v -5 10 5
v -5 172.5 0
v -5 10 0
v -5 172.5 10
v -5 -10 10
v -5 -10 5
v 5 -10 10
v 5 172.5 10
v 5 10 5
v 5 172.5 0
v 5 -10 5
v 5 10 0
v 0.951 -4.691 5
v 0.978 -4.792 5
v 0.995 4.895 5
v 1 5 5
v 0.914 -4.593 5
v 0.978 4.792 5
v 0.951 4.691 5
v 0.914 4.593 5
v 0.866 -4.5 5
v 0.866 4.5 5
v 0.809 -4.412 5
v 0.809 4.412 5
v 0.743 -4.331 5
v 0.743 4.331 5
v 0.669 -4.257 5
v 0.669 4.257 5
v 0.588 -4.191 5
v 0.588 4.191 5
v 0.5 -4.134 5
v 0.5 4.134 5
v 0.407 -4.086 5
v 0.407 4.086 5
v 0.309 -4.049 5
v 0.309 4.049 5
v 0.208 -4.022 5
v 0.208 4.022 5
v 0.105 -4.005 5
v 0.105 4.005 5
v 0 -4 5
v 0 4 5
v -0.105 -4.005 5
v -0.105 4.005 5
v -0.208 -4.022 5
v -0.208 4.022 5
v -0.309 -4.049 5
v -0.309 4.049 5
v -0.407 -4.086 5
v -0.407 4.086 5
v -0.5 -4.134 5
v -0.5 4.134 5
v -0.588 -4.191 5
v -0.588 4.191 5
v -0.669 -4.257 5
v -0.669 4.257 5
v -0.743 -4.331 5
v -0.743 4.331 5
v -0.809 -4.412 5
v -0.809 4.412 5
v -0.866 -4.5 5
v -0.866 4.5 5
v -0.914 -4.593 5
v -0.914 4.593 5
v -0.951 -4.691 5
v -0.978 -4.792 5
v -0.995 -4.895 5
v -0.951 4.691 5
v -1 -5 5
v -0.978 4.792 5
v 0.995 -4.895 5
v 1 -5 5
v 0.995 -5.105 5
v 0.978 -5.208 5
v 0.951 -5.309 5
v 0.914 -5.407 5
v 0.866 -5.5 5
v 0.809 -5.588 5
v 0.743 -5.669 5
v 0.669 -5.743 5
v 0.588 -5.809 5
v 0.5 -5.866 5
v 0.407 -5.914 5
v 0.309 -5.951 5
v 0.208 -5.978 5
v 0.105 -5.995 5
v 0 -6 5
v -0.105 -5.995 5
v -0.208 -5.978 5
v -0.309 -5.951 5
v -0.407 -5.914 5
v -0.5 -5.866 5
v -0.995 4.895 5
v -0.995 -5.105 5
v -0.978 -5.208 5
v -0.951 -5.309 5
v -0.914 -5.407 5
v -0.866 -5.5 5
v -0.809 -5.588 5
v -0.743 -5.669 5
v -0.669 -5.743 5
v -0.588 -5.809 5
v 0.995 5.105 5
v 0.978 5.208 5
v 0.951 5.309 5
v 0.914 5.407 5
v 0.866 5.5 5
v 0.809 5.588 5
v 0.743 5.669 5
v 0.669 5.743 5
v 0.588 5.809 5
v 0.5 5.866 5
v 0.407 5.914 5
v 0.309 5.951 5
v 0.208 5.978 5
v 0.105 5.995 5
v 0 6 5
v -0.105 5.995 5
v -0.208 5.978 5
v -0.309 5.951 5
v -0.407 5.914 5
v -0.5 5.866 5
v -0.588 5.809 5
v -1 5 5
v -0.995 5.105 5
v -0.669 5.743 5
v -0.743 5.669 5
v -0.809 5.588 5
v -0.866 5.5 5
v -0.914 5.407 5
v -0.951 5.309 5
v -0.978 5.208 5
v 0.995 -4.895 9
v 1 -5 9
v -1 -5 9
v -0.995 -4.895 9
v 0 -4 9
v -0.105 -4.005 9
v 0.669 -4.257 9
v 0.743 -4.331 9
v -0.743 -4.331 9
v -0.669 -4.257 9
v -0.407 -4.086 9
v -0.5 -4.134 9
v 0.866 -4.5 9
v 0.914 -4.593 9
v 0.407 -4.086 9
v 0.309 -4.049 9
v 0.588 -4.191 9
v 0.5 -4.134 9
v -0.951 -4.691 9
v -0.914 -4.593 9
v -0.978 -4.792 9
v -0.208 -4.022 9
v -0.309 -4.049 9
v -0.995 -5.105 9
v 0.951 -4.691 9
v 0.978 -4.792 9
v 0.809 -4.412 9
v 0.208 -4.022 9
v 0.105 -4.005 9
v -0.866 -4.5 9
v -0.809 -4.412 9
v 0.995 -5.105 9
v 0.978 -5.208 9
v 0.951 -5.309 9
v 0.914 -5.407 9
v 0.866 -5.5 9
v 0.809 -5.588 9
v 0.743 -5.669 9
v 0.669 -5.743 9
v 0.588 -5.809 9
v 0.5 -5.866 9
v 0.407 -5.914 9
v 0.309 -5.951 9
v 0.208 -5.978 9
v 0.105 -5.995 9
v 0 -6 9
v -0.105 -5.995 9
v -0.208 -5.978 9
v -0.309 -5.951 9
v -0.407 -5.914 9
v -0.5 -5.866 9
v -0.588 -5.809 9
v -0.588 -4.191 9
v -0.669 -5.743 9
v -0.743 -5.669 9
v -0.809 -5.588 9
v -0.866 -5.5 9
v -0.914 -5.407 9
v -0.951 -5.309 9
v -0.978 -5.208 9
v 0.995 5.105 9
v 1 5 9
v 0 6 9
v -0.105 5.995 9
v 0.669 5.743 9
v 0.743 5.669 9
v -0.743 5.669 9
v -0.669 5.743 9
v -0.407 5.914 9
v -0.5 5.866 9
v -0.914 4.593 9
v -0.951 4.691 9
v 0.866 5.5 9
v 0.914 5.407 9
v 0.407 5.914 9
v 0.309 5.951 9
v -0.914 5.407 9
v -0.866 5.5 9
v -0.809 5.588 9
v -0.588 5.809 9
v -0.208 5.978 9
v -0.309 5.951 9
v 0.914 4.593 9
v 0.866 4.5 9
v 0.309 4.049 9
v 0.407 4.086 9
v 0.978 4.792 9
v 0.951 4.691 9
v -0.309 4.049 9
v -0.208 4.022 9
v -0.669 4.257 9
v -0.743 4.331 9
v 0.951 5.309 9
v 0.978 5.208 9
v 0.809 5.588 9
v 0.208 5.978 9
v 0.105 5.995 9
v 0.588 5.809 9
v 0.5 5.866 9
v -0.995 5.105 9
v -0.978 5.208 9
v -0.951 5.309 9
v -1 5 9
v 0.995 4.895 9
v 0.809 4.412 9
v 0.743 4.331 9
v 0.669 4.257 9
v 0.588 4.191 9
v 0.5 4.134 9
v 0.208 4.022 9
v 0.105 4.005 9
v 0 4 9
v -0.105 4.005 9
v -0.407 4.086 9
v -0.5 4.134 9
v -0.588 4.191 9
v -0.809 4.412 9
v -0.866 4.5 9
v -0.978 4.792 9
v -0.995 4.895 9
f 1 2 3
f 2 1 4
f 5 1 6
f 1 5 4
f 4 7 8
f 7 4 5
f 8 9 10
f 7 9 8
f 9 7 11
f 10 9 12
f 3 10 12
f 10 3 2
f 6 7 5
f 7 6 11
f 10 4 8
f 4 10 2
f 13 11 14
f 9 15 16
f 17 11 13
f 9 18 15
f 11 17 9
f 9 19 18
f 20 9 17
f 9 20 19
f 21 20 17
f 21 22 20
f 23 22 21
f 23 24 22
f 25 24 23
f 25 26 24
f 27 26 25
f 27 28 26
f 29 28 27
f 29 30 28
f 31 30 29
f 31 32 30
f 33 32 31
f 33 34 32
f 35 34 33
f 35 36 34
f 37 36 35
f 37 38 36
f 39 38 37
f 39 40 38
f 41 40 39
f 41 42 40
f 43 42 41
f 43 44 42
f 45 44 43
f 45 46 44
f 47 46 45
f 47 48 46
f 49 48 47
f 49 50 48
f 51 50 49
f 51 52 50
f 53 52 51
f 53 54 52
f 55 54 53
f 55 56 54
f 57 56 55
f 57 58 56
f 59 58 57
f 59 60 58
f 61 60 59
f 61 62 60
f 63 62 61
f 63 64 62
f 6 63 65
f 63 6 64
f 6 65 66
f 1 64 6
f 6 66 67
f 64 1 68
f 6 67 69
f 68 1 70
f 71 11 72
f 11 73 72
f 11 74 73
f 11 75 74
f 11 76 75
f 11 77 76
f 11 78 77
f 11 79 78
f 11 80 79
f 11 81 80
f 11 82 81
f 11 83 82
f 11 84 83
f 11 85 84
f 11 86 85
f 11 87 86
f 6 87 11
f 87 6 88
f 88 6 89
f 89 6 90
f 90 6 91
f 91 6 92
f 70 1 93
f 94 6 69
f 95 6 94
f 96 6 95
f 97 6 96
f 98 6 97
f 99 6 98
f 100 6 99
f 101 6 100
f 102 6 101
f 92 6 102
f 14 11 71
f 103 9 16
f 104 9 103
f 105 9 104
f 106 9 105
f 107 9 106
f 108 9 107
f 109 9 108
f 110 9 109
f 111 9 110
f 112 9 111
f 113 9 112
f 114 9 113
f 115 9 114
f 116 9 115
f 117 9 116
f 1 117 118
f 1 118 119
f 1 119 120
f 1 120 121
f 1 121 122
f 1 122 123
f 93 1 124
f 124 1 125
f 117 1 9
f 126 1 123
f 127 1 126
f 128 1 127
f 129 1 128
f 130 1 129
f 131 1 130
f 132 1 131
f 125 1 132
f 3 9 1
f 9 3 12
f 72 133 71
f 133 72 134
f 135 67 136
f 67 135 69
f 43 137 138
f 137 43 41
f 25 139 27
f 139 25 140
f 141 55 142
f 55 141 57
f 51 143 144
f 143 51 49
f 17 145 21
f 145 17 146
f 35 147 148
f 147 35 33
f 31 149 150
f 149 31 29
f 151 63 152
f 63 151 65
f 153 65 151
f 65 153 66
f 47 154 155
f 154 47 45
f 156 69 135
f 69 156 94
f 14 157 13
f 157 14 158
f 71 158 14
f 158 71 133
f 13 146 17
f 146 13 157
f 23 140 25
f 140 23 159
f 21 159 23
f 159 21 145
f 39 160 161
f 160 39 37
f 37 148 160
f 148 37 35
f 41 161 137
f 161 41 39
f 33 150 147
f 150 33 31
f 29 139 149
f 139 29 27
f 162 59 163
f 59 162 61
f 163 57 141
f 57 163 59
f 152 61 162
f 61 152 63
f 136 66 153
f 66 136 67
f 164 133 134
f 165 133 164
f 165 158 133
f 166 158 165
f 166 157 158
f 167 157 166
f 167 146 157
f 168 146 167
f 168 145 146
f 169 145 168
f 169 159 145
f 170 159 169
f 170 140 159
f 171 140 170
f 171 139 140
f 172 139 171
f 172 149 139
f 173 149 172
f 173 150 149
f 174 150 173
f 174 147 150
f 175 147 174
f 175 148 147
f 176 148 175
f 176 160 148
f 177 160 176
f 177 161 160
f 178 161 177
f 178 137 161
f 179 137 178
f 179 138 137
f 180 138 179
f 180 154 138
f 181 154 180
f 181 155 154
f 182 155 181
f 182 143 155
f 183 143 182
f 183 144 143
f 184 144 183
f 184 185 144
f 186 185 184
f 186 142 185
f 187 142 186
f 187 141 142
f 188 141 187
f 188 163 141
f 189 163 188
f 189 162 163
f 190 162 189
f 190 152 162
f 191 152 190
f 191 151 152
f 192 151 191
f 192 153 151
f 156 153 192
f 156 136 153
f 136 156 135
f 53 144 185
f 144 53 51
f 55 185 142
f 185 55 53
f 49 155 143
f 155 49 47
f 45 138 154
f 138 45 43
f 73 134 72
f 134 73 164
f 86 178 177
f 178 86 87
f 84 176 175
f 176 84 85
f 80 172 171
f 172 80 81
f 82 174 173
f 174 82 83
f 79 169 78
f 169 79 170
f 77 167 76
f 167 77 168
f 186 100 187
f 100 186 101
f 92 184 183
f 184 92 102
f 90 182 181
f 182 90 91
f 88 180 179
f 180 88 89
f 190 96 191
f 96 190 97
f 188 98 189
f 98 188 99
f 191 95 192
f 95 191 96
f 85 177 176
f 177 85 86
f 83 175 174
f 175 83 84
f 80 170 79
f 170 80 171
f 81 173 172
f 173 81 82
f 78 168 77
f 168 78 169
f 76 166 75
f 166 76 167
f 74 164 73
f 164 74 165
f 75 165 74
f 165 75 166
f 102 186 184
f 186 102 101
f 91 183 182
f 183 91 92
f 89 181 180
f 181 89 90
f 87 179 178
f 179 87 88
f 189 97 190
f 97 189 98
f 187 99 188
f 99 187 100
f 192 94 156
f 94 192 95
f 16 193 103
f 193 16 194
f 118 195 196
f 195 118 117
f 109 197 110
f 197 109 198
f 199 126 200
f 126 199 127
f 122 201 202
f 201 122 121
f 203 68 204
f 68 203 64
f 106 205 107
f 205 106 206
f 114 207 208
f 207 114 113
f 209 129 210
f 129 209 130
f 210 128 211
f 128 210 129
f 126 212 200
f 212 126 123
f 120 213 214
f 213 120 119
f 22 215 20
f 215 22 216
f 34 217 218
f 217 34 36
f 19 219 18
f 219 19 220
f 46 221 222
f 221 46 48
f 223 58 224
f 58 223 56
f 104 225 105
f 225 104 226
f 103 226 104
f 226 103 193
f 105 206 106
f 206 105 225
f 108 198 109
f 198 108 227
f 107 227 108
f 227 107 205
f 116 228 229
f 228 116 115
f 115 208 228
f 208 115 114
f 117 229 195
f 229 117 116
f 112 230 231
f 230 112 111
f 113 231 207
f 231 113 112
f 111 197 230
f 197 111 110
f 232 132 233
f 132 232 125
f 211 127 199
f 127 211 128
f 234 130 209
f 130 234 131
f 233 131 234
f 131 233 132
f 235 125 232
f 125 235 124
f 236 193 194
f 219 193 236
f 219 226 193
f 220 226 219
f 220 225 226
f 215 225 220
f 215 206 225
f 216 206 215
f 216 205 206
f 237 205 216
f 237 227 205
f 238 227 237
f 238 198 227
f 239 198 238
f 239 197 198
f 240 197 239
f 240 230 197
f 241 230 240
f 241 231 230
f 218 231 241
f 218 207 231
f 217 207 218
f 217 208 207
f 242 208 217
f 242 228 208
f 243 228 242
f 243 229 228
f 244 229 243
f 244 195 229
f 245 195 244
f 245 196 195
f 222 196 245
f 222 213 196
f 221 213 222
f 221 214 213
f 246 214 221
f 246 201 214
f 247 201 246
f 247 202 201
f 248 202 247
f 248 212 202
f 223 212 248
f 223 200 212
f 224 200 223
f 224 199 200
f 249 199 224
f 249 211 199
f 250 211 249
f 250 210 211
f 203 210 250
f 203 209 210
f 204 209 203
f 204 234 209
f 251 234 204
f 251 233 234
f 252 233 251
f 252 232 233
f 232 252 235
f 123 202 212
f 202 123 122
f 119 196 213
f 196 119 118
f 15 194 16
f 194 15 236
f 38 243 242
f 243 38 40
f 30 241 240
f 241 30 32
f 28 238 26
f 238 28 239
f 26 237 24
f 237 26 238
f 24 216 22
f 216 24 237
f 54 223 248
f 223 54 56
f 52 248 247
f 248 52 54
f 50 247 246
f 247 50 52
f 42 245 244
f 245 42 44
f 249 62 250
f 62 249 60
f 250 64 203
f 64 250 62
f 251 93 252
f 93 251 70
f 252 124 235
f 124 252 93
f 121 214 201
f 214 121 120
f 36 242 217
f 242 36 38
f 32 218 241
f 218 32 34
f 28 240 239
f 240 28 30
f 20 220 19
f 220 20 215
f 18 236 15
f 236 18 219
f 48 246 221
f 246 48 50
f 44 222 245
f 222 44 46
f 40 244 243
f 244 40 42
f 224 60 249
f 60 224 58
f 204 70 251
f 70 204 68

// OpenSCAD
/* ==========================================================================
   PROJETO CAMPO TÁTIL - METADE TRASEIRA DO EIXO GUIA Y (IMPRESSÃO DIAGONAL)
   Barra de 10x10mm dividida com emenda de 20mm e pinos de filamento 1.75mm
   Para imprimir na A1 Mini: Rotacione a peça em 45 graus na mesa de impressão
   ========================================================================== */

$fn = 60;

module eixo_y_barra_traseira() {
    difference() {
        // Corpo da barra de Y = -10.0mm até Y = 172.5mm (Comprimento total: 182.5mm)
        translate([0, 81.25, 5])
            cube([10, 182.5, 10], center=true);
            
        // Corte da metade inferior da emenda (Z de 0 a 5.0mm na faixa Y de -10 a 10mm)
        translate([0, 0, 2.5])
            cube([12, 20.0, 5.0], center=true);
            
        // Furos de guia para pinos de filamento 1.75mm (diâmetro de 2.0mm para encaixe justo)
        // Posicionados na linha central Z = 5.0mm nas cotas Y = -5mm e Y = 5mm
        translate([0, -5.0, 5.0])
            cylinder(h = 8.0, r = 1.0, center=true);
        translate([0, 5.0, 5.0])
            cylinder(h = 8.0, r = 1.0, center=true);
    }
}

// Renderiza a peça pronta para exportação
eixo_y_barra_traseira();
